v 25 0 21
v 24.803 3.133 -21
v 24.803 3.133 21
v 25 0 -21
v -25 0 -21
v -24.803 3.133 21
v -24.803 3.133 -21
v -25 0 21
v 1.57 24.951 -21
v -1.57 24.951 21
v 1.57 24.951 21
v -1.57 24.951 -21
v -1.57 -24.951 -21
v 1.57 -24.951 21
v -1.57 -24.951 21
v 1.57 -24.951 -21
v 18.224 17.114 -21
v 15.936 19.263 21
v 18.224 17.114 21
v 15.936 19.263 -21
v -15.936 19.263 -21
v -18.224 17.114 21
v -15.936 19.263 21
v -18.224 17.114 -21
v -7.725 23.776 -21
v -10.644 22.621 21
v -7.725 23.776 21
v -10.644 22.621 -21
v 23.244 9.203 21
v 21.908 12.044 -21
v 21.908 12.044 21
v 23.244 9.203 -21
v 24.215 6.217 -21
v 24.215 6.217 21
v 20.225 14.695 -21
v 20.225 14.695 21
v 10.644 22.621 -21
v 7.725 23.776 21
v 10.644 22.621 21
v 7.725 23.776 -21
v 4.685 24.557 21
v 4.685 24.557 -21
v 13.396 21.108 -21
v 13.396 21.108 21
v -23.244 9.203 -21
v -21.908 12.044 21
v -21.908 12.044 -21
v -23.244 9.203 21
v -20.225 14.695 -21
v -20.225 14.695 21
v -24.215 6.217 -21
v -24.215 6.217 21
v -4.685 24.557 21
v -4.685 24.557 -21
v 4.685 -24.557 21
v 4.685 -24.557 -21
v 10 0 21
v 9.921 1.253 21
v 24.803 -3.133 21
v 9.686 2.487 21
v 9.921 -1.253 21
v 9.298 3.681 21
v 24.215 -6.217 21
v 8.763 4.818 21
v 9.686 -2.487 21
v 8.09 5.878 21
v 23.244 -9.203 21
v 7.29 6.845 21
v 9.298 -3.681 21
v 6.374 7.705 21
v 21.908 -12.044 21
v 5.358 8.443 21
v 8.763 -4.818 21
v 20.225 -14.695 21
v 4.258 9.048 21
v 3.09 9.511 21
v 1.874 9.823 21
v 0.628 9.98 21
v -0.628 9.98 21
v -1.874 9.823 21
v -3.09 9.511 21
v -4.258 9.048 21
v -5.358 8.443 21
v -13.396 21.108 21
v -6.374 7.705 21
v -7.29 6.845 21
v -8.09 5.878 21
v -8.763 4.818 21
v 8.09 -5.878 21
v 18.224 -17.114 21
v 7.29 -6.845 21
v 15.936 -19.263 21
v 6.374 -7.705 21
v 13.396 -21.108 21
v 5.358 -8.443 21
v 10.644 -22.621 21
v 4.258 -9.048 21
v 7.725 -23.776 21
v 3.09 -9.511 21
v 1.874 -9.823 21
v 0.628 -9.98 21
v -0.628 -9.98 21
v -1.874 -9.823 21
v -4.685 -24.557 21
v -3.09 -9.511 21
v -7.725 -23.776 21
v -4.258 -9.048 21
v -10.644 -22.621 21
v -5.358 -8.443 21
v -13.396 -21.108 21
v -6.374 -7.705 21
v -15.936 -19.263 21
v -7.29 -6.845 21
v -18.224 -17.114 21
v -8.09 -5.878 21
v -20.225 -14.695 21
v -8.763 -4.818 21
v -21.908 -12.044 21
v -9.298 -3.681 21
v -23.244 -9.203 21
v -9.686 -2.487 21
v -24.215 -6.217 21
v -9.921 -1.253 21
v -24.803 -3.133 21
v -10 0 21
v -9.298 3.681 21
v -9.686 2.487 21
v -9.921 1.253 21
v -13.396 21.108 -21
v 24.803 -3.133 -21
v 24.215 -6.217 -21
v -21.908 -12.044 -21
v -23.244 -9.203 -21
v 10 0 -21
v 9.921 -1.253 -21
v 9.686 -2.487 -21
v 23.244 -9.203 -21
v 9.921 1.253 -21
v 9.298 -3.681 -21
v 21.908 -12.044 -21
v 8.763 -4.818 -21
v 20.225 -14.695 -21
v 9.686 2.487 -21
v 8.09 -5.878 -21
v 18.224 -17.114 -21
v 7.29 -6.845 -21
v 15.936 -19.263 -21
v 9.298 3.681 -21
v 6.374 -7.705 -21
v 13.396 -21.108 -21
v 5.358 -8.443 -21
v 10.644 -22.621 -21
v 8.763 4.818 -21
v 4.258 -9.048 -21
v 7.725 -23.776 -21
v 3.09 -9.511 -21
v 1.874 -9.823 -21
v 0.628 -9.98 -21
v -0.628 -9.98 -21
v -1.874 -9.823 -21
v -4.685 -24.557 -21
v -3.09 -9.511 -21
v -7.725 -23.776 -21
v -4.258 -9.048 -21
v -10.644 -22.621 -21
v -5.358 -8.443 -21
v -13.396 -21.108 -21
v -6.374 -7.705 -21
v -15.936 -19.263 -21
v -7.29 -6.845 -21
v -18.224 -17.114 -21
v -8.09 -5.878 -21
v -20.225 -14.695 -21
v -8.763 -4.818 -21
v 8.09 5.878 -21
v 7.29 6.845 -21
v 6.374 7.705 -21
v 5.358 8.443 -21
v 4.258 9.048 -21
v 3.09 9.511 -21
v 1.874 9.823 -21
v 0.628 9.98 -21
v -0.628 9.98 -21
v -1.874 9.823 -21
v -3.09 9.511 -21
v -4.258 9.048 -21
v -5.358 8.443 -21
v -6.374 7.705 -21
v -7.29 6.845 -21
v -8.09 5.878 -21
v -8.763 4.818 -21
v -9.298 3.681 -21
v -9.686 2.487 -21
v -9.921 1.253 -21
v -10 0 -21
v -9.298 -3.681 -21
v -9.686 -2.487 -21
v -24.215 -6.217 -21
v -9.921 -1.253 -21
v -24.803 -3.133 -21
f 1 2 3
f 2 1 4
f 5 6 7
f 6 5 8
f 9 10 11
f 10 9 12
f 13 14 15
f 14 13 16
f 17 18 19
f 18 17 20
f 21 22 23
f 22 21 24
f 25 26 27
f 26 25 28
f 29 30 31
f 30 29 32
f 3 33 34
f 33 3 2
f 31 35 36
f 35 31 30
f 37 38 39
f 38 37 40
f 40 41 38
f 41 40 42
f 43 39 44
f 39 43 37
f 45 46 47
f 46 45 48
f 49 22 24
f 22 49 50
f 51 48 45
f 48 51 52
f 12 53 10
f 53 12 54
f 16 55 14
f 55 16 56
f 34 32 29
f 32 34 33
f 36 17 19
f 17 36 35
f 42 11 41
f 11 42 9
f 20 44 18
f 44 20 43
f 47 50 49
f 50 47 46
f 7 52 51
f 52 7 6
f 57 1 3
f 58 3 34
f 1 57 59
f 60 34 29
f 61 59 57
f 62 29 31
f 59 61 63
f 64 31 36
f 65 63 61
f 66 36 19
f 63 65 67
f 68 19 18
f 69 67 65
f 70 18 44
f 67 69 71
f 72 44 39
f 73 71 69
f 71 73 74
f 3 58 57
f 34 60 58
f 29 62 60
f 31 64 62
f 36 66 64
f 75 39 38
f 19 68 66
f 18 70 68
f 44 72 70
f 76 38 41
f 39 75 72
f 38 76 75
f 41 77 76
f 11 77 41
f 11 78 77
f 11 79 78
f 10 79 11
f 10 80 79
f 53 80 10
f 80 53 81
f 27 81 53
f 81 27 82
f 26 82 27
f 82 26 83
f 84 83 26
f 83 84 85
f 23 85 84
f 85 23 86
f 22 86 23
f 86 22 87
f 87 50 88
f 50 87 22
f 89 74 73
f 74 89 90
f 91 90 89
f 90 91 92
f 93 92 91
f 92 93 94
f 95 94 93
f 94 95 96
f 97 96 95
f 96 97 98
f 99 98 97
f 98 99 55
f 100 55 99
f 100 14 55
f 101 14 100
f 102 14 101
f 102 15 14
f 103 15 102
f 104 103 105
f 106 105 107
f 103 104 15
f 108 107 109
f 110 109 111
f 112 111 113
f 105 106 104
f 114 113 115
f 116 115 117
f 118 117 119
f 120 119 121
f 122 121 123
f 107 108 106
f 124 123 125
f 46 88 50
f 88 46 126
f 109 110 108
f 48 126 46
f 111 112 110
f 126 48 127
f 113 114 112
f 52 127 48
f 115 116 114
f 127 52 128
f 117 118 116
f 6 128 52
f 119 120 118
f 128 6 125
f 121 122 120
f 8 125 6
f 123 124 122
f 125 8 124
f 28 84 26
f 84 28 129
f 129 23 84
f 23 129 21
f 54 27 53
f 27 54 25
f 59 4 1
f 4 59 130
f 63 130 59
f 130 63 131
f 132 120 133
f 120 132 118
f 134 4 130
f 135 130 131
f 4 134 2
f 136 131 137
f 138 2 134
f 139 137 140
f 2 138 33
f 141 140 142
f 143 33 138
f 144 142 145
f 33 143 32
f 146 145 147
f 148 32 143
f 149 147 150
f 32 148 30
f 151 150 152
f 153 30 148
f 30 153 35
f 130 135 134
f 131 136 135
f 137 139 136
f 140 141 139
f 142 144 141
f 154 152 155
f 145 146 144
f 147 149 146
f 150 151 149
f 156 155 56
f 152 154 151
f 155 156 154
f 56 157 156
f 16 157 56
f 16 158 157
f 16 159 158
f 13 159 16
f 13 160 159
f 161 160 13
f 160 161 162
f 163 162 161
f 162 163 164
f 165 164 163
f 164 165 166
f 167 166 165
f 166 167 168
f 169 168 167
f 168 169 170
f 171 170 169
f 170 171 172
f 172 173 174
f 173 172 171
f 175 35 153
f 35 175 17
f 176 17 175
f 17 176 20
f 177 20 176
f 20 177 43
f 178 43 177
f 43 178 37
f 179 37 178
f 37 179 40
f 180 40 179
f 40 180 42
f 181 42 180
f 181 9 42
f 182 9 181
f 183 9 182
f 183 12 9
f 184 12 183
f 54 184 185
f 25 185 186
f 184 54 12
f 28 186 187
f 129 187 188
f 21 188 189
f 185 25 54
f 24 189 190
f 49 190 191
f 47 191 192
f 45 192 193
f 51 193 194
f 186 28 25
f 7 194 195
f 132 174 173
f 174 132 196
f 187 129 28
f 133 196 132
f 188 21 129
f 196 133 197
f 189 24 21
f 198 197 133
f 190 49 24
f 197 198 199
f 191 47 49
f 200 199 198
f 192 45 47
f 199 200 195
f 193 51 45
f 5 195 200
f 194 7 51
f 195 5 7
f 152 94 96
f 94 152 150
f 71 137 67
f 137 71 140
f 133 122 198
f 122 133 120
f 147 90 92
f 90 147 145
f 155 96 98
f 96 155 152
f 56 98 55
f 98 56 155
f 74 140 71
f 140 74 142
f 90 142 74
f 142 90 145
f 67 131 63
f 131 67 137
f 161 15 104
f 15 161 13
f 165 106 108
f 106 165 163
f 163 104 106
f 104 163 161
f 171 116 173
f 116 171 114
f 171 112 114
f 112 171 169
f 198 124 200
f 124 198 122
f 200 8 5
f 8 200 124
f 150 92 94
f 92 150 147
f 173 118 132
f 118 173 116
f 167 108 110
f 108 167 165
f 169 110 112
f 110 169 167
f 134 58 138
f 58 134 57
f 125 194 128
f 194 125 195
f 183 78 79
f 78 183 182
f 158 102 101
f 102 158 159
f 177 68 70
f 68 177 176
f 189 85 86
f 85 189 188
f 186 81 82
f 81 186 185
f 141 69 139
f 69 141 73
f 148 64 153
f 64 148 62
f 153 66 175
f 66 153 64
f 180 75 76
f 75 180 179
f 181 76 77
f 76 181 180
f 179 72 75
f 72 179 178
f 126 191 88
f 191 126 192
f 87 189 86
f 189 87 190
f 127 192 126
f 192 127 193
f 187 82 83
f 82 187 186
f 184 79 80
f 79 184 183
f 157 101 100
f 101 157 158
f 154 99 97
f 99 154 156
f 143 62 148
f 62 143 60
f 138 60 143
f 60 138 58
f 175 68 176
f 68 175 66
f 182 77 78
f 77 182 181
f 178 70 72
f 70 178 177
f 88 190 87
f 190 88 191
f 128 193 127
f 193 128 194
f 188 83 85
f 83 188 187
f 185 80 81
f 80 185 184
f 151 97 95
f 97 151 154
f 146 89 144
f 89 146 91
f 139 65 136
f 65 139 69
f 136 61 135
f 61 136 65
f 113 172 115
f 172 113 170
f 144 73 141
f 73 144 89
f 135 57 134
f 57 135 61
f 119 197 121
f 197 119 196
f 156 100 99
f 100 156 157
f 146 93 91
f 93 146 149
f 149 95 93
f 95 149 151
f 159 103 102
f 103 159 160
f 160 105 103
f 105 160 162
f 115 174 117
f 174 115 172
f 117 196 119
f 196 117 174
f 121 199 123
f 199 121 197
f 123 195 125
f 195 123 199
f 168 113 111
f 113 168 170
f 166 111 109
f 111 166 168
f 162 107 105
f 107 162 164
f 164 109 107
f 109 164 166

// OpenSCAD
$fn = 50;


difference() {
	union() {
		translate(v = [0, 0, -21.0000000000]) {
			cylinder(h = 42, r = 25.0000000000);
		}
	}
	union() {
		translate(v = [0, 0, -100.0000000000]) {
			cylinder(h = 200, r = 10);
		}
	}
}
